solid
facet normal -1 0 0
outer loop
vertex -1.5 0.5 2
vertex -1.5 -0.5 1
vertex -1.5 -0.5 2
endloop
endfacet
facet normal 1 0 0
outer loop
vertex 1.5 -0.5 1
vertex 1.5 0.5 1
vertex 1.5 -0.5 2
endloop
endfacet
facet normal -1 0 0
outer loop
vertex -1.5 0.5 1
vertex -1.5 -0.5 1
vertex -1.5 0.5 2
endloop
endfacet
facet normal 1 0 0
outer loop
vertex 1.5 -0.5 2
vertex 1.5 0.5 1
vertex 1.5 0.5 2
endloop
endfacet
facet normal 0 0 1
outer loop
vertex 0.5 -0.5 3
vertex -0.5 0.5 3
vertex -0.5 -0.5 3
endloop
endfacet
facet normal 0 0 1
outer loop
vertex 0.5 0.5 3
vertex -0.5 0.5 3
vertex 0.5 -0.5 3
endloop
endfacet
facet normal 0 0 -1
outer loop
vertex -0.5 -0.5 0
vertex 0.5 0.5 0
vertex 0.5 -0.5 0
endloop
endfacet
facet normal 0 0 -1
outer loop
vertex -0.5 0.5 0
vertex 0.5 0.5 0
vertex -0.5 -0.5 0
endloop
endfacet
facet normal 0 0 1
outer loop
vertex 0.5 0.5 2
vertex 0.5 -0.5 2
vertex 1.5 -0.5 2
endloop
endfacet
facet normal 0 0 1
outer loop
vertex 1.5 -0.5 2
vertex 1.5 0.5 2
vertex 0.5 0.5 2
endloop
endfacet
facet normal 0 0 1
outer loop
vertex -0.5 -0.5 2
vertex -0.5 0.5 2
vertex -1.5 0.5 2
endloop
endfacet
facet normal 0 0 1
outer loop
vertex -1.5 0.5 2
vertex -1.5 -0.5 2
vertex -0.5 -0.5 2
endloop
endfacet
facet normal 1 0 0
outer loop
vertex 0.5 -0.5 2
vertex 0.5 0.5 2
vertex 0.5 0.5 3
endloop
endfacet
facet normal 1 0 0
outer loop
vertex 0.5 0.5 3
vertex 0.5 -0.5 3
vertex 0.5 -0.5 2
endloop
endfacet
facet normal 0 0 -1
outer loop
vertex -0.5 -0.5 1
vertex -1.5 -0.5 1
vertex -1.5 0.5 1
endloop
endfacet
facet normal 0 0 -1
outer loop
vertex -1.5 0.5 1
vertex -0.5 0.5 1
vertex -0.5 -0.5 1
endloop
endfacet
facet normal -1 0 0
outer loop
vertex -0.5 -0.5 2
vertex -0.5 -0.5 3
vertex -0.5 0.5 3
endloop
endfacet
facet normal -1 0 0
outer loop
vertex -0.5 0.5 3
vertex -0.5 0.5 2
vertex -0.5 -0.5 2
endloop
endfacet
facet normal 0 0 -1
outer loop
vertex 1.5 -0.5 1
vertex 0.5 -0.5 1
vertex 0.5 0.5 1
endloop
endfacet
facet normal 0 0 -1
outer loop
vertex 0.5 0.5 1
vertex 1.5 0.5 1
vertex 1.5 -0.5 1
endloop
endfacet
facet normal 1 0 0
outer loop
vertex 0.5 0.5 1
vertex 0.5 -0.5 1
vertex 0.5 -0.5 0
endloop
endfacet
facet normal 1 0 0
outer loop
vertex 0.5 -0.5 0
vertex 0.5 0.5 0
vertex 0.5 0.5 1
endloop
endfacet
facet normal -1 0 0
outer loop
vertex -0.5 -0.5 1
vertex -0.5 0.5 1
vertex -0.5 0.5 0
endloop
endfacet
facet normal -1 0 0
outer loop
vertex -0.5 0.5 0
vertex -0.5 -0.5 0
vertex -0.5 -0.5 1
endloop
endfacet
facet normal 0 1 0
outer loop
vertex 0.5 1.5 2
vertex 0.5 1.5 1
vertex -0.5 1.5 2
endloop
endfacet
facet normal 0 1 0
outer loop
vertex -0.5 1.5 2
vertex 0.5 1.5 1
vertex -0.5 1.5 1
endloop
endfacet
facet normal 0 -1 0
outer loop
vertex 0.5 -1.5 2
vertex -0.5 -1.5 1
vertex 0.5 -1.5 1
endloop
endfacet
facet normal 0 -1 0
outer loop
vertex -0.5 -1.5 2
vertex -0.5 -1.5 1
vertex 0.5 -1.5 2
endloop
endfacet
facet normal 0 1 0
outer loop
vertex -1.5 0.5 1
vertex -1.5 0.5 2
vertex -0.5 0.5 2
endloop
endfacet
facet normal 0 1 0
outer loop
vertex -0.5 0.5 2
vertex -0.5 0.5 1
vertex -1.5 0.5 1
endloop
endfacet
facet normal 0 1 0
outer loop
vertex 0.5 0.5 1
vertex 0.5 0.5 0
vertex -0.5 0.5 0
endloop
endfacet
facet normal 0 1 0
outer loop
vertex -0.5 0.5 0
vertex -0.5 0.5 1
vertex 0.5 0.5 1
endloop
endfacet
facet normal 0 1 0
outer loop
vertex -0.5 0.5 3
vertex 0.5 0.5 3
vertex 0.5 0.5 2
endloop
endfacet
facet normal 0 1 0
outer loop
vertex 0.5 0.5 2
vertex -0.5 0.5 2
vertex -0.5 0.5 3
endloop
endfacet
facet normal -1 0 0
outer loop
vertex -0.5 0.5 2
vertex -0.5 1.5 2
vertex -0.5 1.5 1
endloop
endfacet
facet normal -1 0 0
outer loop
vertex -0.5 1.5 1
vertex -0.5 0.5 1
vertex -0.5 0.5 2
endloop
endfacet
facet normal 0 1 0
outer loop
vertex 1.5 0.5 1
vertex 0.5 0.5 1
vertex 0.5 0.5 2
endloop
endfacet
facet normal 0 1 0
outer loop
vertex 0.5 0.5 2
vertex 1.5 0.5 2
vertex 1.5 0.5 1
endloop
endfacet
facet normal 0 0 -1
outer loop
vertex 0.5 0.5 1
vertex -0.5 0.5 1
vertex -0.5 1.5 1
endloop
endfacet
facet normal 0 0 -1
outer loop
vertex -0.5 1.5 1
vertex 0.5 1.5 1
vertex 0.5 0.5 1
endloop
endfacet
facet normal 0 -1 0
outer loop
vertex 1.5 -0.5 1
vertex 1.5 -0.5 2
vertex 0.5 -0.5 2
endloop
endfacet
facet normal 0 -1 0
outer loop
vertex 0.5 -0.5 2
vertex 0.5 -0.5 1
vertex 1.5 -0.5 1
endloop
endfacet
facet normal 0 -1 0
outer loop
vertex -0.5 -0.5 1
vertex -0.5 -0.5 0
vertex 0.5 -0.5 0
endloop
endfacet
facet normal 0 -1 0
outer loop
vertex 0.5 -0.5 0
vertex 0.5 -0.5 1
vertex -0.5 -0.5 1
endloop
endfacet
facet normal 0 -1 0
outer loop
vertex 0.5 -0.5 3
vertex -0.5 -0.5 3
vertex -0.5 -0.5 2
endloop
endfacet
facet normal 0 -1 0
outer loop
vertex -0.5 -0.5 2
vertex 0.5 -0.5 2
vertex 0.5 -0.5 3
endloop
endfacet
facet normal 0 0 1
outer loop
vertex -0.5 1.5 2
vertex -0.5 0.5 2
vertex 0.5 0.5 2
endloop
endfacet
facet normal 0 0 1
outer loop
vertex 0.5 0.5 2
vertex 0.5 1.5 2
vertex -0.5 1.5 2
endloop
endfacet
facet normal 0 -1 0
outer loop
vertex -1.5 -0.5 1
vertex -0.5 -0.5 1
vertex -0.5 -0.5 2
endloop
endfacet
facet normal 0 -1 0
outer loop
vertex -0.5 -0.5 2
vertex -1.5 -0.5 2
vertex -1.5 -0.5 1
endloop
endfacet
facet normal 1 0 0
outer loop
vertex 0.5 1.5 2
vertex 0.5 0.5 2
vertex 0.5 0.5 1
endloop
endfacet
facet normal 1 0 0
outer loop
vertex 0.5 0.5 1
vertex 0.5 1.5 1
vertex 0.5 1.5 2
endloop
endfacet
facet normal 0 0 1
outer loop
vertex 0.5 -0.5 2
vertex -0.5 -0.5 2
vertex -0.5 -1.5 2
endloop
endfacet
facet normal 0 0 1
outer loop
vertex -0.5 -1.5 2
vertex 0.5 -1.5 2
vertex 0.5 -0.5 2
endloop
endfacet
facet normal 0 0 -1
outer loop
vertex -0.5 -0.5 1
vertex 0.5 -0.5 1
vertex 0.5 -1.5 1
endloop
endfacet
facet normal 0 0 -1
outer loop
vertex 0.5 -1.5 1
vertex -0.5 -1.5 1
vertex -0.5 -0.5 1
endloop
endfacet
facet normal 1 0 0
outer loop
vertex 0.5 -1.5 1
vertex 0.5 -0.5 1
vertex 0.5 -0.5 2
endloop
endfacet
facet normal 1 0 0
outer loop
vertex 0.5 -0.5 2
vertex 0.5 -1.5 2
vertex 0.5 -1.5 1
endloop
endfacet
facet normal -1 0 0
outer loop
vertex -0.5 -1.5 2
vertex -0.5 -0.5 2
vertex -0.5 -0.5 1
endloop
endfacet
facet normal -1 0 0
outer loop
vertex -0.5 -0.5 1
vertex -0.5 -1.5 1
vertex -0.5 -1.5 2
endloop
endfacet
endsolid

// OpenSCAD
color("Lime")
translate([-0.5,-0.5,0])
union(){
    cube([1,1,3]);
    translate([-1,0,1])
        cube([3,1,1]);
    translate([0,-1,1])
        cube([1,3,1]);
    }
